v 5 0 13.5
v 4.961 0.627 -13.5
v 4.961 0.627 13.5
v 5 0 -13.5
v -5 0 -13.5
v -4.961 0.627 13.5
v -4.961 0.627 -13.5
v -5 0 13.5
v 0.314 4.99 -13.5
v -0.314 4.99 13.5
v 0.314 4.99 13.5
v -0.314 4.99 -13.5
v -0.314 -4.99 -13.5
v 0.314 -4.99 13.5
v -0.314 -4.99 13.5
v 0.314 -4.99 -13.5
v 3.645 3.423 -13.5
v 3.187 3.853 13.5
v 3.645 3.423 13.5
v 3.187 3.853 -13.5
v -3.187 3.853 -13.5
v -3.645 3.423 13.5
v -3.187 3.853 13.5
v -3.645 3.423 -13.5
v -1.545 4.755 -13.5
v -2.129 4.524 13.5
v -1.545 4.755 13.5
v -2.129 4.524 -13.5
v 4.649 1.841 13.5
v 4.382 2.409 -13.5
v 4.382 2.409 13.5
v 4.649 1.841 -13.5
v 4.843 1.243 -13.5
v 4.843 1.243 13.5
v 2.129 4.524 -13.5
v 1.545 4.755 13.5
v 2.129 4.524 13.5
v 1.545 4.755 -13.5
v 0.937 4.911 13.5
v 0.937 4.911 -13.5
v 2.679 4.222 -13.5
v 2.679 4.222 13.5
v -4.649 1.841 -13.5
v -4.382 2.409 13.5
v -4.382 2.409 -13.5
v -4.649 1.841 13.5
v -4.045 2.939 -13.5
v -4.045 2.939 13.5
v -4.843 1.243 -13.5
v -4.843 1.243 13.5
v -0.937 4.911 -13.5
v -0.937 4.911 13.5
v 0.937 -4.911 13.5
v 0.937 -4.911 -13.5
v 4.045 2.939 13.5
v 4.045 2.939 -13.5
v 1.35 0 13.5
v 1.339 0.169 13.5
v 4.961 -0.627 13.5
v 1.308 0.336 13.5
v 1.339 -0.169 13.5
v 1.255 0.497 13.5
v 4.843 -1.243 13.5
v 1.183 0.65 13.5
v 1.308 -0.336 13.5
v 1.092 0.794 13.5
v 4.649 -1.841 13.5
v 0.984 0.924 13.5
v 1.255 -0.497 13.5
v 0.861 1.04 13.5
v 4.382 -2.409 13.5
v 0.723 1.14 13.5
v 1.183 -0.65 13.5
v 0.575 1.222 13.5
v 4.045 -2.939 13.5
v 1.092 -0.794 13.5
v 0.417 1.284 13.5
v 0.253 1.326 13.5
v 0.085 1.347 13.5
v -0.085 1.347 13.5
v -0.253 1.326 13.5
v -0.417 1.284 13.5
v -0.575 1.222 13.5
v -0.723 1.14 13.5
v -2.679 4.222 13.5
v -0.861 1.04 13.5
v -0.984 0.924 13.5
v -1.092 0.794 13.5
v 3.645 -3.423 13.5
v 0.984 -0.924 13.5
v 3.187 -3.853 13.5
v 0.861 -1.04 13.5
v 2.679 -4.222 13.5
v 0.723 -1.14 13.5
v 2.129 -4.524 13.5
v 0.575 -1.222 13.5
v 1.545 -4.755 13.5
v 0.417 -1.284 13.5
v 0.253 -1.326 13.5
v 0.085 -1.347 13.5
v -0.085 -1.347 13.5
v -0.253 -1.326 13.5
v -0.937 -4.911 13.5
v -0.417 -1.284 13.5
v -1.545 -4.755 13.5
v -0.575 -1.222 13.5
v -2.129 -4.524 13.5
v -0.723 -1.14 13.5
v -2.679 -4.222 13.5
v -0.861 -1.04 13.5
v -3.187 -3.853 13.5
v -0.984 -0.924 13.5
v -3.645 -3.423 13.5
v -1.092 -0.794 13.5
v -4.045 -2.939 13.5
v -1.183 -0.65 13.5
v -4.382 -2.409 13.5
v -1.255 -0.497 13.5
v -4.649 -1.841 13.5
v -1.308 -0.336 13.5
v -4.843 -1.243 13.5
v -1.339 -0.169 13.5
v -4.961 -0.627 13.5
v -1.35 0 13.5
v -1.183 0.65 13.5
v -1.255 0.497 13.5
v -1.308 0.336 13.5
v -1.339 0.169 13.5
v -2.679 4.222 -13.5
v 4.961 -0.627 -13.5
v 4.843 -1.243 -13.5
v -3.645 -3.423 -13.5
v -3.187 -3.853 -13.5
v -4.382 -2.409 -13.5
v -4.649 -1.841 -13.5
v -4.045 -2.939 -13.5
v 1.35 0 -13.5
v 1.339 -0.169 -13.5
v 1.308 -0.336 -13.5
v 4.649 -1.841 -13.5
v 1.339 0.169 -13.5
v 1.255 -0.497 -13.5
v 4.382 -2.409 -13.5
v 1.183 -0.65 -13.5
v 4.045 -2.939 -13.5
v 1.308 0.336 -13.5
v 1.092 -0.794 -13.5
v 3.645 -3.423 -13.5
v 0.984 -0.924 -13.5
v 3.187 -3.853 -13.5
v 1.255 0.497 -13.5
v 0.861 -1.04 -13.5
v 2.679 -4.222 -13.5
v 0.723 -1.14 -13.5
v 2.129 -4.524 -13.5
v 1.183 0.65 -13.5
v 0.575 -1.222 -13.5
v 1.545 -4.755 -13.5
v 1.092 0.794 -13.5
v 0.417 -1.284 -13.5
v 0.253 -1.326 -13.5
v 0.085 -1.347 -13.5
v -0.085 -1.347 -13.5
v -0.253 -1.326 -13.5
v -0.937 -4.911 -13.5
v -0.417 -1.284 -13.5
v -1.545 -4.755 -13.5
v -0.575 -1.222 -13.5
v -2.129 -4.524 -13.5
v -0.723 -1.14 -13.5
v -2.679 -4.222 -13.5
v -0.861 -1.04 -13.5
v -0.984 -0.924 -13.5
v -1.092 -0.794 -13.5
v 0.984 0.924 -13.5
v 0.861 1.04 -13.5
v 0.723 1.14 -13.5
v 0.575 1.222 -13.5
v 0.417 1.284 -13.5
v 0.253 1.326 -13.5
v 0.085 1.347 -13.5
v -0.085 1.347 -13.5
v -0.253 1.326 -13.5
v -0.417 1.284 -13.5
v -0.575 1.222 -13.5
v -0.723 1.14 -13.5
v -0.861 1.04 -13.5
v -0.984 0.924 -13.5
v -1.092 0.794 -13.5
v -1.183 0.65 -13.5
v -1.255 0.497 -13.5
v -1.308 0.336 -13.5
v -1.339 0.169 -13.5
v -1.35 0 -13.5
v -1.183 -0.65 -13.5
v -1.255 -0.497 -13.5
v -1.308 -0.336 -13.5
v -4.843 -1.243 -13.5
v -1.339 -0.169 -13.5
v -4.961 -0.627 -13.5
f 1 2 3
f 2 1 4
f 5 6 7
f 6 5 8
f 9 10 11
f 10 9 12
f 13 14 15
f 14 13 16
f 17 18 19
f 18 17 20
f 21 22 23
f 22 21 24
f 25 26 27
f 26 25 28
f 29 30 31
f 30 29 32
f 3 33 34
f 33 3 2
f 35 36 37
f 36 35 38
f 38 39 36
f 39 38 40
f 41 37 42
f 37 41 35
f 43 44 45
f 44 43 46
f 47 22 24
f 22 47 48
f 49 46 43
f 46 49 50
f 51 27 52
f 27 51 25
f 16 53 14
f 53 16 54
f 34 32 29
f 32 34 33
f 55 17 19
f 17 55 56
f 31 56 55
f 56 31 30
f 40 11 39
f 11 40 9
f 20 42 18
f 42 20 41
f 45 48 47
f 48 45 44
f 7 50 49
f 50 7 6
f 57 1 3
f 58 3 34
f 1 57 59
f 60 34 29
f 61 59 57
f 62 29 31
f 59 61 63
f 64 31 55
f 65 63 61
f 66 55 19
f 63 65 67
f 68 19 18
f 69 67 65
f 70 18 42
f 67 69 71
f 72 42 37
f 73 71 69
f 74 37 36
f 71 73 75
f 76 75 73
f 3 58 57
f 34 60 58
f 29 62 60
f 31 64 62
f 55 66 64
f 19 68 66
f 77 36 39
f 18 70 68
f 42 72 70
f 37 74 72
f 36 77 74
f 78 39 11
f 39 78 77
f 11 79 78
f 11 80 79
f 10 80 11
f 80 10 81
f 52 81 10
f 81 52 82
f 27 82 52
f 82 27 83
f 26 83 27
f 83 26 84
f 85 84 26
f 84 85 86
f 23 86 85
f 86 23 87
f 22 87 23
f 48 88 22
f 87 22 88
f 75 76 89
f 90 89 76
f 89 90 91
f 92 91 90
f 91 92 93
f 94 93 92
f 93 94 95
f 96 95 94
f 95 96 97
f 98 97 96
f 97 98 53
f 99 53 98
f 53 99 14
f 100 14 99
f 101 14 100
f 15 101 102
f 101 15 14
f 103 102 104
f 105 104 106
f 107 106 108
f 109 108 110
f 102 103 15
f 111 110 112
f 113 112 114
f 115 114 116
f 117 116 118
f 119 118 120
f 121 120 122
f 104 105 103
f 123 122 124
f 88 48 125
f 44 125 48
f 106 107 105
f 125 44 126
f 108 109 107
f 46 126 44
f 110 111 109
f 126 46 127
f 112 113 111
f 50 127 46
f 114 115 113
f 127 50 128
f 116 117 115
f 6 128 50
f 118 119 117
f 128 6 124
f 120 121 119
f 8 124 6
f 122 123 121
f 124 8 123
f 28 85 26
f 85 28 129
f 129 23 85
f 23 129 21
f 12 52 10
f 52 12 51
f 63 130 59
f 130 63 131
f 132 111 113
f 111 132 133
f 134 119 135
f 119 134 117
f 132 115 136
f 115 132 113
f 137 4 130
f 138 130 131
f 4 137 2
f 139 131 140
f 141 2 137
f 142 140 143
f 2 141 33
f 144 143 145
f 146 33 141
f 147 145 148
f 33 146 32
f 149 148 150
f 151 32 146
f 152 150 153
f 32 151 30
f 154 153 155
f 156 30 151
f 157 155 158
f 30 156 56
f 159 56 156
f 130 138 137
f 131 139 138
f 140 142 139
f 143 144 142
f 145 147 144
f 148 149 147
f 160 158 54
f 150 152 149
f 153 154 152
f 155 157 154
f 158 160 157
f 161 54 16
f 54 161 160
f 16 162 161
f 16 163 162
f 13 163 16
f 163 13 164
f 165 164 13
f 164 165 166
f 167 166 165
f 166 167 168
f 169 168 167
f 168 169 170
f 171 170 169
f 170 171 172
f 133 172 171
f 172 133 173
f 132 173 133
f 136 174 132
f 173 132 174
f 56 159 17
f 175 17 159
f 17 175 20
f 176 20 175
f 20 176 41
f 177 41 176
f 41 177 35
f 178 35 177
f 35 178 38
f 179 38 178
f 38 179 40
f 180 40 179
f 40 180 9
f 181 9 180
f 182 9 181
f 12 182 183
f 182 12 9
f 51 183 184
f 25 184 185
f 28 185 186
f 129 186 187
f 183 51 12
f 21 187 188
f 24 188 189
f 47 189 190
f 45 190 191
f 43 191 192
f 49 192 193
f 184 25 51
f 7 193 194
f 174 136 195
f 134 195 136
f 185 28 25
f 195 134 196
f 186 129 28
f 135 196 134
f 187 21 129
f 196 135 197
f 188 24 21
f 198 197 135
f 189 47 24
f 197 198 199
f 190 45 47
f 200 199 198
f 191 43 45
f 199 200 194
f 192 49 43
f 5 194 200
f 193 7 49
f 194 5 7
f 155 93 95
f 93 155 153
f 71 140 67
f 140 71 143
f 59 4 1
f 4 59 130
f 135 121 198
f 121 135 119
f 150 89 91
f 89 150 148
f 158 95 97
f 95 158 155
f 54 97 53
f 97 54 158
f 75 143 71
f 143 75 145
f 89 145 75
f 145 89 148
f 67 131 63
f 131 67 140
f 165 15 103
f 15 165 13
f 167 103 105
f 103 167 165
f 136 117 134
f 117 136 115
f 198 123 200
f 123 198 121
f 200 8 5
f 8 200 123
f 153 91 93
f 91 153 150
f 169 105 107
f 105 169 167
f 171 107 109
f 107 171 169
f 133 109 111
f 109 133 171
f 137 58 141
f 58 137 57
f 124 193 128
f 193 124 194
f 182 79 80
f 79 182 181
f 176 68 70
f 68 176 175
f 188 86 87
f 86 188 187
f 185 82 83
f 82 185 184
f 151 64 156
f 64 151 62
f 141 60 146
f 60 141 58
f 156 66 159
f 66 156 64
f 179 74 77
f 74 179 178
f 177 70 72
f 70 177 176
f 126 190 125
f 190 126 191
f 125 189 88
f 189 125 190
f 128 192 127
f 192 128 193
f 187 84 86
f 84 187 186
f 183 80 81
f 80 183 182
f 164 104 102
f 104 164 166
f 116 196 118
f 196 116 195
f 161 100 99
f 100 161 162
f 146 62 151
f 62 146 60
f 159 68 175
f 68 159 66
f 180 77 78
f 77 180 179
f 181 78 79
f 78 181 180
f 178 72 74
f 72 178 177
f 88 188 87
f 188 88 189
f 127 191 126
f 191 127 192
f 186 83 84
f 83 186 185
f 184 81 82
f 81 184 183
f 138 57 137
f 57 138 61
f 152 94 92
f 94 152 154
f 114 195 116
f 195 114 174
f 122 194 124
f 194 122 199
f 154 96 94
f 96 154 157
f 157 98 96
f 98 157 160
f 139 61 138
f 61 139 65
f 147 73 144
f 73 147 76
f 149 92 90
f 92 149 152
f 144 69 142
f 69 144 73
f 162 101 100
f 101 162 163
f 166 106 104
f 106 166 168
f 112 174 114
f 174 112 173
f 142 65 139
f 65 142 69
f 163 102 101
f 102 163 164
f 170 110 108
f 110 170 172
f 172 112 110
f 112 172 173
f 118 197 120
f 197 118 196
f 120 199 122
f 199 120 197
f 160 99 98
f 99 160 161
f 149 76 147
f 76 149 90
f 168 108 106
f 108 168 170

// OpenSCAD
$fn = 50;


difference() {
	union() {
		translate(v = [0, 0, -13.5000000000]) {
			cylinder(h = 27, r = 5.0000000000);
		}
	}
	union() {
		translate(v = [0, 0, -100.0000000000]) {
			cylinder(h = 200, r = 1.3500000000);
		}
	}
}
